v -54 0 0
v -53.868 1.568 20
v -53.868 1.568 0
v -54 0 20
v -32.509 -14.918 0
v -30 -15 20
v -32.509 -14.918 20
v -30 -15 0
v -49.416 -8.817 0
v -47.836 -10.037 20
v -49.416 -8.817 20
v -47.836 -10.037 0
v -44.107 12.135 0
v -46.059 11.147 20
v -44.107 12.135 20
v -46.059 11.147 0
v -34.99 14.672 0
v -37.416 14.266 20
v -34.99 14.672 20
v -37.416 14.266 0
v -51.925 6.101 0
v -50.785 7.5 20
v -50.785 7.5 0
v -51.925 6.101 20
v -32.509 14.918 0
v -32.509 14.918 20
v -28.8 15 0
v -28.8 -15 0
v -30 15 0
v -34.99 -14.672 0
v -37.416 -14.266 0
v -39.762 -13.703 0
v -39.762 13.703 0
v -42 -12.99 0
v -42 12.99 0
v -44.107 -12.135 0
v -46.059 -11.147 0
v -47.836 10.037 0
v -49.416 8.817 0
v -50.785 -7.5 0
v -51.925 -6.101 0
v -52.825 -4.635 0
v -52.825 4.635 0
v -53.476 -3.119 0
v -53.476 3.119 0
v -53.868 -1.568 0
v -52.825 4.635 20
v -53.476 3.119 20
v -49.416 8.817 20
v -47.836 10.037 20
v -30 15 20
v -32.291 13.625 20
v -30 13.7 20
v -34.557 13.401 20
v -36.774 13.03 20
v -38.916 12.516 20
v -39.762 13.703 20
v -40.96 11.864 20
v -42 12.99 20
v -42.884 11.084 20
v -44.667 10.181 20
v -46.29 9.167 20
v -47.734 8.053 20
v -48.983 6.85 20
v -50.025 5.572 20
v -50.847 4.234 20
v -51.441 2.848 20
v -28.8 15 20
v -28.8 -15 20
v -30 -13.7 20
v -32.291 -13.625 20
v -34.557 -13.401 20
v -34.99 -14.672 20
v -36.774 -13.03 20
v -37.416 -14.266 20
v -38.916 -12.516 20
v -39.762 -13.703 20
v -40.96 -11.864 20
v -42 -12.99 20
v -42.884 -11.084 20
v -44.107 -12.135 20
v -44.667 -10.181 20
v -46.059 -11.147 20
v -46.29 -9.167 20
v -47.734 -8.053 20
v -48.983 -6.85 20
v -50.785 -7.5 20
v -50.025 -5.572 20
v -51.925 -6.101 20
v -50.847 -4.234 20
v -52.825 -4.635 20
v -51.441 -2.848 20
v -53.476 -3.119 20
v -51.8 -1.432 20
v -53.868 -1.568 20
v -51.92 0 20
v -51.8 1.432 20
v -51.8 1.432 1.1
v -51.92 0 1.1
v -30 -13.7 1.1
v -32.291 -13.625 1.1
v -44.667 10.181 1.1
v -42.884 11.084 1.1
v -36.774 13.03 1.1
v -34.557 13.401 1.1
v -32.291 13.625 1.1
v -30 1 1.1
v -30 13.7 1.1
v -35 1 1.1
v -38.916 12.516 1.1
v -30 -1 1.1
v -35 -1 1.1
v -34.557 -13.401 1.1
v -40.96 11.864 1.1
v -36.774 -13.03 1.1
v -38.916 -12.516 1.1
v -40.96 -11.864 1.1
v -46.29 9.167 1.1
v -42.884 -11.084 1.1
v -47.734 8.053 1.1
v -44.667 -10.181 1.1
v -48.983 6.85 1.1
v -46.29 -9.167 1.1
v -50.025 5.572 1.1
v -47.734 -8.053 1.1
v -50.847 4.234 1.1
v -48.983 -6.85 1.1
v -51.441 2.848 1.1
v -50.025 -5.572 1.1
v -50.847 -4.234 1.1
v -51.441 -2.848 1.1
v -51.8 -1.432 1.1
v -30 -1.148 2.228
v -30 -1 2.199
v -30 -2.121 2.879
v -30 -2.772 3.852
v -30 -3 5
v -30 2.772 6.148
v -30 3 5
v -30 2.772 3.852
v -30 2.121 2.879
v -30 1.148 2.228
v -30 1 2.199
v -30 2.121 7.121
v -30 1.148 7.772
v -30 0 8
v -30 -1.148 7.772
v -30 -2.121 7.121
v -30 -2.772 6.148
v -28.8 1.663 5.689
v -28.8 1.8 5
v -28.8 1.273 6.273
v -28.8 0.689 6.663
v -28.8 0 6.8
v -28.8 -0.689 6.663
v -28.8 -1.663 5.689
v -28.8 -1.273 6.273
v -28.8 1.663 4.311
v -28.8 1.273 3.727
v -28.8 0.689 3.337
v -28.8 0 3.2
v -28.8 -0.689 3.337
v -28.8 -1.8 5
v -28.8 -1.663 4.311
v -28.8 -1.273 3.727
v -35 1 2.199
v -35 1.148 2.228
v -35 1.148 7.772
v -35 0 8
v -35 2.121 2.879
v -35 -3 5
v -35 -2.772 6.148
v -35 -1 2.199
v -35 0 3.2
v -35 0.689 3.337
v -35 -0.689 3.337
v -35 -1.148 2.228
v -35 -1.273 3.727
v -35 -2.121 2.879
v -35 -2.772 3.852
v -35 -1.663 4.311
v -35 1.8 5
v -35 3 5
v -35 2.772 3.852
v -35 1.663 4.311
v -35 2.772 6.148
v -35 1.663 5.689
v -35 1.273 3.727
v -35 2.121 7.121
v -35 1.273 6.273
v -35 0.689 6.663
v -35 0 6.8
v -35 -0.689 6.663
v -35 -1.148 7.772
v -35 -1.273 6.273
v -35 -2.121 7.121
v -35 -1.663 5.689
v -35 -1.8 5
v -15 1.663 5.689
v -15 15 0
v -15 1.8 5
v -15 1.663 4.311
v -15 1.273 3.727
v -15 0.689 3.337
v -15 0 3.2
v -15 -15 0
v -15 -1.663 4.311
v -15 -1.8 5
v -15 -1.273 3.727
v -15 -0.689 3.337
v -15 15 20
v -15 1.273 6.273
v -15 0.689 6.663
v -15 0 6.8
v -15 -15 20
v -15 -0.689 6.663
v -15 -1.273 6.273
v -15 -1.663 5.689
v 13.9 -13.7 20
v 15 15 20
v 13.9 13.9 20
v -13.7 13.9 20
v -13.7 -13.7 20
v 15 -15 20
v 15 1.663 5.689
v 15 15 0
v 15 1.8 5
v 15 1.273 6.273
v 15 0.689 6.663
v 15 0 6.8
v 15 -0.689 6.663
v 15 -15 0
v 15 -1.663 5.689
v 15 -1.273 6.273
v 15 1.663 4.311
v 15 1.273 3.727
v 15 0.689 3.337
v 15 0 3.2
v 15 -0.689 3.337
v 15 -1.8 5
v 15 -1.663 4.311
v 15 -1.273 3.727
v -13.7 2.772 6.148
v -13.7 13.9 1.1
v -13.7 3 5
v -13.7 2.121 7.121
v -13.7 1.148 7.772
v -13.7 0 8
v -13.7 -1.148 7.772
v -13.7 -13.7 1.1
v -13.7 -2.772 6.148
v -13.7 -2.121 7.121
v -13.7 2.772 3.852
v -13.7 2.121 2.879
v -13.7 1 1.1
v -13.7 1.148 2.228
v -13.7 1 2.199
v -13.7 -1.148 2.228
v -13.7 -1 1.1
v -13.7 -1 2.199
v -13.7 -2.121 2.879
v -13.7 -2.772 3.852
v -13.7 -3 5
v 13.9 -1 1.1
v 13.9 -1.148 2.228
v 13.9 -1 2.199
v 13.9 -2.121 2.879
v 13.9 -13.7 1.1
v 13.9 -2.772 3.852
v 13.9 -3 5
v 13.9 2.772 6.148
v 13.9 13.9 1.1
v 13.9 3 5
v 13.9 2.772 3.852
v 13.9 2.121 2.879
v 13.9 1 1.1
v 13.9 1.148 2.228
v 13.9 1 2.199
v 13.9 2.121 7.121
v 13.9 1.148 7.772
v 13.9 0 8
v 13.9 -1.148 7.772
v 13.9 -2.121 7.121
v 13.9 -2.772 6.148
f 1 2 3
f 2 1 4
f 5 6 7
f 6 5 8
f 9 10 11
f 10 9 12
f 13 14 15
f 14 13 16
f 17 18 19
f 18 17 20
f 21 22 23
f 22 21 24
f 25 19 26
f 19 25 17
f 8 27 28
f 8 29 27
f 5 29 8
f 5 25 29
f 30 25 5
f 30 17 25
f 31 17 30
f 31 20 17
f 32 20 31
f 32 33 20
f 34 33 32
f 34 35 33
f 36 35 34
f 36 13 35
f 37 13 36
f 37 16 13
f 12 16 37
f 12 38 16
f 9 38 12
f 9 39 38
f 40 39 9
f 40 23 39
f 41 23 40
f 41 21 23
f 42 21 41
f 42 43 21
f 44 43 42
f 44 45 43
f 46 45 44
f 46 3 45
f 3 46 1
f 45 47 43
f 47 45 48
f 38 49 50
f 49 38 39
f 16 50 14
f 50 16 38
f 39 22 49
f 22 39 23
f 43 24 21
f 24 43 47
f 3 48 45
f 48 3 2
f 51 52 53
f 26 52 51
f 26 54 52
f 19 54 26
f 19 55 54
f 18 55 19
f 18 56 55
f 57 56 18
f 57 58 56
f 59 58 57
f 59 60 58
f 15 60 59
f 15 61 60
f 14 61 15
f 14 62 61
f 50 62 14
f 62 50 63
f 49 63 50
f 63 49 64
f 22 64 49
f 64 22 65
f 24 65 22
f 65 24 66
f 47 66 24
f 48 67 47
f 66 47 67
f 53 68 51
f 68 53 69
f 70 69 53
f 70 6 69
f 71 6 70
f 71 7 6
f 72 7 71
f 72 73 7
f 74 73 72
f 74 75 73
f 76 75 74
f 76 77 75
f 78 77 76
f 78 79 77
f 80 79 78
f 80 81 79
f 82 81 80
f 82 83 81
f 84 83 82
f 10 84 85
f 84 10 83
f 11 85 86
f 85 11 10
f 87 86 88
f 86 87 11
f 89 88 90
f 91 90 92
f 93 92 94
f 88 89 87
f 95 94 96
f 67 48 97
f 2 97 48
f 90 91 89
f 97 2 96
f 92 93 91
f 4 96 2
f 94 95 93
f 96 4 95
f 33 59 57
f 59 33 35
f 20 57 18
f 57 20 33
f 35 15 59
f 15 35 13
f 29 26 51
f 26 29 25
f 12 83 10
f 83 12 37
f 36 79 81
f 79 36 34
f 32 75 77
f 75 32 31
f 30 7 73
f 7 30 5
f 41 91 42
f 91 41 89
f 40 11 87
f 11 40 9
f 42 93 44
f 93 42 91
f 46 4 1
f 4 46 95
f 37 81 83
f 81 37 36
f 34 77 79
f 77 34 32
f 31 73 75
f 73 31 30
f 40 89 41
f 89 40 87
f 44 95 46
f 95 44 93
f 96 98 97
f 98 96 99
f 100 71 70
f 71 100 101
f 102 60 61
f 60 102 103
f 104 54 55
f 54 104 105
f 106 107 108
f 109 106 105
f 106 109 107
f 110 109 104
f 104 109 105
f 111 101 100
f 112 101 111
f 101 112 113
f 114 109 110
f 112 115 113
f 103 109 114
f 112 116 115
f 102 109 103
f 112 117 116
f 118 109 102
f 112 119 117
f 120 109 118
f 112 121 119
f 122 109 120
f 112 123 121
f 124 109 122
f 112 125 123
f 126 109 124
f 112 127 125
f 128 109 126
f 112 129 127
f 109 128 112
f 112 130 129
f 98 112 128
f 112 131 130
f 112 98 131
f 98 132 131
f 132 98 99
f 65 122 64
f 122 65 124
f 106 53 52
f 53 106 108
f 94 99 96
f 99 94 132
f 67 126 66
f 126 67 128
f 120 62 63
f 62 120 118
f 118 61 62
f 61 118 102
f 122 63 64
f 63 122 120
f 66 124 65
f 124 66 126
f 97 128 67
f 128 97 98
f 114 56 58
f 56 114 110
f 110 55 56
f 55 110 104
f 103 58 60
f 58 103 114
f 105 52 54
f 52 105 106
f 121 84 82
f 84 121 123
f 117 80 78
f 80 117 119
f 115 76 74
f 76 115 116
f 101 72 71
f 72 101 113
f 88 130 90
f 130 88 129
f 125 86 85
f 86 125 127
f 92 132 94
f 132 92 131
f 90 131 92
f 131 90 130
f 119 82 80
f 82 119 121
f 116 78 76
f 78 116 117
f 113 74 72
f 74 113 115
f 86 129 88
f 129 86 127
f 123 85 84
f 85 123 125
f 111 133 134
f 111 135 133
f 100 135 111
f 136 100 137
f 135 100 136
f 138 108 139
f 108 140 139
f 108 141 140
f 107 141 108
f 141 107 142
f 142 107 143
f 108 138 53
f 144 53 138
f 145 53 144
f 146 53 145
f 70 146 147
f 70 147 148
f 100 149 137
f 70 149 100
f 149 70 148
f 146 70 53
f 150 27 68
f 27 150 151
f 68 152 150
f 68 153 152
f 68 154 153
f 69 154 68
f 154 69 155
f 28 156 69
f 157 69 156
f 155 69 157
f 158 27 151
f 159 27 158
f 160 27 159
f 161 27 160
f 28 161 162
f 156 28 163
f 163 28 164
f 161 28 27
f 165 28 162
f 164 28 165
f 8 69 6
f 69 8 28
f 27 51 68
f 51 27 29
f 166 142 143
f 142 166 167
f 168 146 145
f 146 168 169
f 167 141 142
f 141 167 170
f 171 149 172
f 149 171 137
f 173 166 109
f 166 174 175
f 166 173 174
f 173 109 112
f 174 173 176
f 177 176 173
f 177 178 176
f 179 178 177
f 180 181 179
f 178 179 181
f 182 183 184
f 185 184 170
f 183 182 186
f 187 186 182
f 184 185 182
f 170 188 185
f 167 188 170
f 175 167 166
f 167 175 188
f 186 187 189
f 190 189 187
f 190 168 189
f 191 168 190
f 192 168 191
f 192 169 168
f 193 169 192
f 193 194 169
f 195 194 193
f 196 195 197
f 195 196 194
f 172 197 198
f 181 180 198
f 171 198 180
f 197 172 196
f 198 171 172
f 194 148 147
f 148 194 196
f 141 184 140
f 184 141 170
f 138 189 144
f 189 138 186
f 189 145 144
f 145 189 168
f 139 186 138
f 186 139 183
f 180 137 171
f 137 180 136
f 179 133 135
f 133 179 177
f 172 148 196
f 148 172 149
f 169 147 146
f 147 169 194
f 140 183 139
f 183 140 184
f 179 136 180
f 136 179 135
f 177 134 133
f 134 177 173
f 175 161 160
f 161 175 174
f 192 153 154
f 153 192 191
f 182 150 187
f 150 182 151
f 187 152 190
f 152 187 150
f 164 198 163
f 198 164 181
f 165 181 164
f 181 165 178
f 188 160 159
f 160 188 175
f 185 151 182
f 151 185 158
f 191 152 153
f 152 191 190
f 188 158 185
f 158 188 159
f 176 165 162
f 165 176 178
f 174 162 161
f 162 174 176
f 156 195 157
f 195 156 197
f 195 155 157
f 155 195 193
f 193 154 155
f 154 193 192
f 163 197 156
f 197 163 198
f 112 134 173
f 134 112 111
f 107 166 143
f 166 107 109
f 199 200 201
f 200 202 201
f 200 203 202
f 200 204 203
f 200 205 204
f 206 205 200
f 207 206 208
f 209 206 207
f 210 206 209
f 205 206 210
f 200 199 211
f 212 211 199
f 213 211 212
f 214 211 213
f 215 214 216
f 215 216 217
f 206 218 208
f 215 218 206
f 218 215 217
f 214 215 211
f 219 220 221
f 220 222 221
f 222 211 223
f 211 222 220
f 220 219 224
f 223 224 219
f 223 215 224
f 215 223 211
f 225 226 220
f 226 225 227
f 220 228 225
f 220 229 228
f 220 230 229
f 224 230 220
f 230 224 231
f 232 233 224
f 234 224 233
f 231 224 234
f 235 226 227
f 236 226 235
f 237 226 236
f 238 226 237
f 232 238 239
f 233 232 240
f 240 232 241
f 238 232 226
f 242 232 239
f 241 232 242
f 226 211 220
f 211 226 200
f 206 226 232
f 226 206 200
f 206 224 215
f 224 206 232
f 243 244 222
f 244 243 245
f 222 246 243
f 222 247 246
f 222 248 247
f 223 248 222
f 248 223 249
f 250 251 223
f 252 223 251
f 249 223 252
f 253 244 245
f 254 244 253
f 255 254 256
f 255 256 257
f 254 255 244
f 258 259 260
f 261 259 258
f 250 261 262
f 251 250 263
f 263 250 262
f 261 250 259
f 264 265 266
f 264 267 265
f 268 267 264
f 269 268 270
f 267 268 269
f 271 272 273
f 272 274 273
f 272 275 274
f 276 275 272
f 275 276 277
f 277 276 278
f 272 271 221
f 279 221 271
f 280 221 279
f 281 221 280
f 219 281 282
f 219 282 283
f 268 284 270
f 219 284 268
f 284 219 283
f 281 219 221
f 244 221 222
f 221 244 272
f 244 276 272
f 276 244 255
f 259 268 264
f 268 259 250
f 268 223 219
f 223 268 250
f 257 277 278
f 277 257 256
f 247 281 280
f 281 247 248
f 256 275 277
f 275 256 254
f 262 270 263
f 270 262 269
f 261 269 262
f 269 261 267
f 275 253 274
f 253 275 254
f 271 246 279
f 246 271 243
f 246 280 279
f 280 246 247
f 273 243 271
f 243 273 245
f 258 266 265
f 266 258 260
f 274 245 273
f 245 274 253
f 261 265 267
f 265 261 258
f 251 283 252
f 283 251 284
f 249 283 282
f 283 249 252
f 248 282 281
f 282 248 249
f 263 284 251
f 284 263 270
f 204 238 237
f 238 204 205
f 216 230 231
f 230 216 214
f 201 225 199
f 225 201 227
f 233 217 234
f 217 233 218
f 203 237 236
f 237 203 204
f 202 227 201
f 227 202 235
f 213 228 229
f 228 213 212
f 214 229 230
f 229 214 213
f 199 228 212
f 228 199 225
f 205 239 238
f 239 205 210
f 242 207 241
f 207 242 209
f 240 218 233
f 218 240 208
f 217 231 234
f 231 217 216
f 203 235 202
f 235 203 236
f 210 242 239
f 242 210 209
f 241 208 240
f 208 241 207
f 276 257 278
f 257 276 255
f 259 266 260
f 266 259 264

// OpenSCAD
translate([-30,0,0]){
    difference(){
        scale([1.6,1,1]){
            difference(){
                cylinder(20,15,15,$fn=60);
                translate([0,0,1.1])
                    cylinder(20,13.7,13.7,$fn=60);
            }//diff
        }//scale
            translate([0,-15,-1])
                cube([50,30,22]);
        
    }//diff
    
    difference(){
        translate([0,-15,0])
            cube([1.2,30,20]);
        translate([-10,0,5])
        rotate([0,90,0])
            cylinder(32,2,2,$fn=16);
    }
    //support
    translate([-5,-1,0])
        cube([5,2,3]);

    difference(){
        translate([-5,0,5])
        rotate([0,90,0])
            cylinder(6.2,3,3,$fn=16);
        translate([-6,0,5])
        rotate([0,90,0])
            cylinder(9,1.8,1.8,$fn=16);
    }//diff
        
}//translate

translate([-15,-15,0]){
    difference(){
        cube([30,30,20]);
        translate([1.3,1.3,1.1])
            cube([27.6,27.6,20]);
        translate([-1,15,5])
        rotate([0,90,0])
            cylinder(32,2,2,$fn=16);
    }//diff
    //support
    translate([0,14,0])
        cube([30,2,3]);

    difference(){
        translate([0,15,5])
        rotate([0,90,0])
            cylinder(30,3,3,$fn=16);
        translate([-1,15,5])
        rotate([0,90,0])
            cylinder(32,1.8,1.8,$fn=16);
    }//diff
}//translate
